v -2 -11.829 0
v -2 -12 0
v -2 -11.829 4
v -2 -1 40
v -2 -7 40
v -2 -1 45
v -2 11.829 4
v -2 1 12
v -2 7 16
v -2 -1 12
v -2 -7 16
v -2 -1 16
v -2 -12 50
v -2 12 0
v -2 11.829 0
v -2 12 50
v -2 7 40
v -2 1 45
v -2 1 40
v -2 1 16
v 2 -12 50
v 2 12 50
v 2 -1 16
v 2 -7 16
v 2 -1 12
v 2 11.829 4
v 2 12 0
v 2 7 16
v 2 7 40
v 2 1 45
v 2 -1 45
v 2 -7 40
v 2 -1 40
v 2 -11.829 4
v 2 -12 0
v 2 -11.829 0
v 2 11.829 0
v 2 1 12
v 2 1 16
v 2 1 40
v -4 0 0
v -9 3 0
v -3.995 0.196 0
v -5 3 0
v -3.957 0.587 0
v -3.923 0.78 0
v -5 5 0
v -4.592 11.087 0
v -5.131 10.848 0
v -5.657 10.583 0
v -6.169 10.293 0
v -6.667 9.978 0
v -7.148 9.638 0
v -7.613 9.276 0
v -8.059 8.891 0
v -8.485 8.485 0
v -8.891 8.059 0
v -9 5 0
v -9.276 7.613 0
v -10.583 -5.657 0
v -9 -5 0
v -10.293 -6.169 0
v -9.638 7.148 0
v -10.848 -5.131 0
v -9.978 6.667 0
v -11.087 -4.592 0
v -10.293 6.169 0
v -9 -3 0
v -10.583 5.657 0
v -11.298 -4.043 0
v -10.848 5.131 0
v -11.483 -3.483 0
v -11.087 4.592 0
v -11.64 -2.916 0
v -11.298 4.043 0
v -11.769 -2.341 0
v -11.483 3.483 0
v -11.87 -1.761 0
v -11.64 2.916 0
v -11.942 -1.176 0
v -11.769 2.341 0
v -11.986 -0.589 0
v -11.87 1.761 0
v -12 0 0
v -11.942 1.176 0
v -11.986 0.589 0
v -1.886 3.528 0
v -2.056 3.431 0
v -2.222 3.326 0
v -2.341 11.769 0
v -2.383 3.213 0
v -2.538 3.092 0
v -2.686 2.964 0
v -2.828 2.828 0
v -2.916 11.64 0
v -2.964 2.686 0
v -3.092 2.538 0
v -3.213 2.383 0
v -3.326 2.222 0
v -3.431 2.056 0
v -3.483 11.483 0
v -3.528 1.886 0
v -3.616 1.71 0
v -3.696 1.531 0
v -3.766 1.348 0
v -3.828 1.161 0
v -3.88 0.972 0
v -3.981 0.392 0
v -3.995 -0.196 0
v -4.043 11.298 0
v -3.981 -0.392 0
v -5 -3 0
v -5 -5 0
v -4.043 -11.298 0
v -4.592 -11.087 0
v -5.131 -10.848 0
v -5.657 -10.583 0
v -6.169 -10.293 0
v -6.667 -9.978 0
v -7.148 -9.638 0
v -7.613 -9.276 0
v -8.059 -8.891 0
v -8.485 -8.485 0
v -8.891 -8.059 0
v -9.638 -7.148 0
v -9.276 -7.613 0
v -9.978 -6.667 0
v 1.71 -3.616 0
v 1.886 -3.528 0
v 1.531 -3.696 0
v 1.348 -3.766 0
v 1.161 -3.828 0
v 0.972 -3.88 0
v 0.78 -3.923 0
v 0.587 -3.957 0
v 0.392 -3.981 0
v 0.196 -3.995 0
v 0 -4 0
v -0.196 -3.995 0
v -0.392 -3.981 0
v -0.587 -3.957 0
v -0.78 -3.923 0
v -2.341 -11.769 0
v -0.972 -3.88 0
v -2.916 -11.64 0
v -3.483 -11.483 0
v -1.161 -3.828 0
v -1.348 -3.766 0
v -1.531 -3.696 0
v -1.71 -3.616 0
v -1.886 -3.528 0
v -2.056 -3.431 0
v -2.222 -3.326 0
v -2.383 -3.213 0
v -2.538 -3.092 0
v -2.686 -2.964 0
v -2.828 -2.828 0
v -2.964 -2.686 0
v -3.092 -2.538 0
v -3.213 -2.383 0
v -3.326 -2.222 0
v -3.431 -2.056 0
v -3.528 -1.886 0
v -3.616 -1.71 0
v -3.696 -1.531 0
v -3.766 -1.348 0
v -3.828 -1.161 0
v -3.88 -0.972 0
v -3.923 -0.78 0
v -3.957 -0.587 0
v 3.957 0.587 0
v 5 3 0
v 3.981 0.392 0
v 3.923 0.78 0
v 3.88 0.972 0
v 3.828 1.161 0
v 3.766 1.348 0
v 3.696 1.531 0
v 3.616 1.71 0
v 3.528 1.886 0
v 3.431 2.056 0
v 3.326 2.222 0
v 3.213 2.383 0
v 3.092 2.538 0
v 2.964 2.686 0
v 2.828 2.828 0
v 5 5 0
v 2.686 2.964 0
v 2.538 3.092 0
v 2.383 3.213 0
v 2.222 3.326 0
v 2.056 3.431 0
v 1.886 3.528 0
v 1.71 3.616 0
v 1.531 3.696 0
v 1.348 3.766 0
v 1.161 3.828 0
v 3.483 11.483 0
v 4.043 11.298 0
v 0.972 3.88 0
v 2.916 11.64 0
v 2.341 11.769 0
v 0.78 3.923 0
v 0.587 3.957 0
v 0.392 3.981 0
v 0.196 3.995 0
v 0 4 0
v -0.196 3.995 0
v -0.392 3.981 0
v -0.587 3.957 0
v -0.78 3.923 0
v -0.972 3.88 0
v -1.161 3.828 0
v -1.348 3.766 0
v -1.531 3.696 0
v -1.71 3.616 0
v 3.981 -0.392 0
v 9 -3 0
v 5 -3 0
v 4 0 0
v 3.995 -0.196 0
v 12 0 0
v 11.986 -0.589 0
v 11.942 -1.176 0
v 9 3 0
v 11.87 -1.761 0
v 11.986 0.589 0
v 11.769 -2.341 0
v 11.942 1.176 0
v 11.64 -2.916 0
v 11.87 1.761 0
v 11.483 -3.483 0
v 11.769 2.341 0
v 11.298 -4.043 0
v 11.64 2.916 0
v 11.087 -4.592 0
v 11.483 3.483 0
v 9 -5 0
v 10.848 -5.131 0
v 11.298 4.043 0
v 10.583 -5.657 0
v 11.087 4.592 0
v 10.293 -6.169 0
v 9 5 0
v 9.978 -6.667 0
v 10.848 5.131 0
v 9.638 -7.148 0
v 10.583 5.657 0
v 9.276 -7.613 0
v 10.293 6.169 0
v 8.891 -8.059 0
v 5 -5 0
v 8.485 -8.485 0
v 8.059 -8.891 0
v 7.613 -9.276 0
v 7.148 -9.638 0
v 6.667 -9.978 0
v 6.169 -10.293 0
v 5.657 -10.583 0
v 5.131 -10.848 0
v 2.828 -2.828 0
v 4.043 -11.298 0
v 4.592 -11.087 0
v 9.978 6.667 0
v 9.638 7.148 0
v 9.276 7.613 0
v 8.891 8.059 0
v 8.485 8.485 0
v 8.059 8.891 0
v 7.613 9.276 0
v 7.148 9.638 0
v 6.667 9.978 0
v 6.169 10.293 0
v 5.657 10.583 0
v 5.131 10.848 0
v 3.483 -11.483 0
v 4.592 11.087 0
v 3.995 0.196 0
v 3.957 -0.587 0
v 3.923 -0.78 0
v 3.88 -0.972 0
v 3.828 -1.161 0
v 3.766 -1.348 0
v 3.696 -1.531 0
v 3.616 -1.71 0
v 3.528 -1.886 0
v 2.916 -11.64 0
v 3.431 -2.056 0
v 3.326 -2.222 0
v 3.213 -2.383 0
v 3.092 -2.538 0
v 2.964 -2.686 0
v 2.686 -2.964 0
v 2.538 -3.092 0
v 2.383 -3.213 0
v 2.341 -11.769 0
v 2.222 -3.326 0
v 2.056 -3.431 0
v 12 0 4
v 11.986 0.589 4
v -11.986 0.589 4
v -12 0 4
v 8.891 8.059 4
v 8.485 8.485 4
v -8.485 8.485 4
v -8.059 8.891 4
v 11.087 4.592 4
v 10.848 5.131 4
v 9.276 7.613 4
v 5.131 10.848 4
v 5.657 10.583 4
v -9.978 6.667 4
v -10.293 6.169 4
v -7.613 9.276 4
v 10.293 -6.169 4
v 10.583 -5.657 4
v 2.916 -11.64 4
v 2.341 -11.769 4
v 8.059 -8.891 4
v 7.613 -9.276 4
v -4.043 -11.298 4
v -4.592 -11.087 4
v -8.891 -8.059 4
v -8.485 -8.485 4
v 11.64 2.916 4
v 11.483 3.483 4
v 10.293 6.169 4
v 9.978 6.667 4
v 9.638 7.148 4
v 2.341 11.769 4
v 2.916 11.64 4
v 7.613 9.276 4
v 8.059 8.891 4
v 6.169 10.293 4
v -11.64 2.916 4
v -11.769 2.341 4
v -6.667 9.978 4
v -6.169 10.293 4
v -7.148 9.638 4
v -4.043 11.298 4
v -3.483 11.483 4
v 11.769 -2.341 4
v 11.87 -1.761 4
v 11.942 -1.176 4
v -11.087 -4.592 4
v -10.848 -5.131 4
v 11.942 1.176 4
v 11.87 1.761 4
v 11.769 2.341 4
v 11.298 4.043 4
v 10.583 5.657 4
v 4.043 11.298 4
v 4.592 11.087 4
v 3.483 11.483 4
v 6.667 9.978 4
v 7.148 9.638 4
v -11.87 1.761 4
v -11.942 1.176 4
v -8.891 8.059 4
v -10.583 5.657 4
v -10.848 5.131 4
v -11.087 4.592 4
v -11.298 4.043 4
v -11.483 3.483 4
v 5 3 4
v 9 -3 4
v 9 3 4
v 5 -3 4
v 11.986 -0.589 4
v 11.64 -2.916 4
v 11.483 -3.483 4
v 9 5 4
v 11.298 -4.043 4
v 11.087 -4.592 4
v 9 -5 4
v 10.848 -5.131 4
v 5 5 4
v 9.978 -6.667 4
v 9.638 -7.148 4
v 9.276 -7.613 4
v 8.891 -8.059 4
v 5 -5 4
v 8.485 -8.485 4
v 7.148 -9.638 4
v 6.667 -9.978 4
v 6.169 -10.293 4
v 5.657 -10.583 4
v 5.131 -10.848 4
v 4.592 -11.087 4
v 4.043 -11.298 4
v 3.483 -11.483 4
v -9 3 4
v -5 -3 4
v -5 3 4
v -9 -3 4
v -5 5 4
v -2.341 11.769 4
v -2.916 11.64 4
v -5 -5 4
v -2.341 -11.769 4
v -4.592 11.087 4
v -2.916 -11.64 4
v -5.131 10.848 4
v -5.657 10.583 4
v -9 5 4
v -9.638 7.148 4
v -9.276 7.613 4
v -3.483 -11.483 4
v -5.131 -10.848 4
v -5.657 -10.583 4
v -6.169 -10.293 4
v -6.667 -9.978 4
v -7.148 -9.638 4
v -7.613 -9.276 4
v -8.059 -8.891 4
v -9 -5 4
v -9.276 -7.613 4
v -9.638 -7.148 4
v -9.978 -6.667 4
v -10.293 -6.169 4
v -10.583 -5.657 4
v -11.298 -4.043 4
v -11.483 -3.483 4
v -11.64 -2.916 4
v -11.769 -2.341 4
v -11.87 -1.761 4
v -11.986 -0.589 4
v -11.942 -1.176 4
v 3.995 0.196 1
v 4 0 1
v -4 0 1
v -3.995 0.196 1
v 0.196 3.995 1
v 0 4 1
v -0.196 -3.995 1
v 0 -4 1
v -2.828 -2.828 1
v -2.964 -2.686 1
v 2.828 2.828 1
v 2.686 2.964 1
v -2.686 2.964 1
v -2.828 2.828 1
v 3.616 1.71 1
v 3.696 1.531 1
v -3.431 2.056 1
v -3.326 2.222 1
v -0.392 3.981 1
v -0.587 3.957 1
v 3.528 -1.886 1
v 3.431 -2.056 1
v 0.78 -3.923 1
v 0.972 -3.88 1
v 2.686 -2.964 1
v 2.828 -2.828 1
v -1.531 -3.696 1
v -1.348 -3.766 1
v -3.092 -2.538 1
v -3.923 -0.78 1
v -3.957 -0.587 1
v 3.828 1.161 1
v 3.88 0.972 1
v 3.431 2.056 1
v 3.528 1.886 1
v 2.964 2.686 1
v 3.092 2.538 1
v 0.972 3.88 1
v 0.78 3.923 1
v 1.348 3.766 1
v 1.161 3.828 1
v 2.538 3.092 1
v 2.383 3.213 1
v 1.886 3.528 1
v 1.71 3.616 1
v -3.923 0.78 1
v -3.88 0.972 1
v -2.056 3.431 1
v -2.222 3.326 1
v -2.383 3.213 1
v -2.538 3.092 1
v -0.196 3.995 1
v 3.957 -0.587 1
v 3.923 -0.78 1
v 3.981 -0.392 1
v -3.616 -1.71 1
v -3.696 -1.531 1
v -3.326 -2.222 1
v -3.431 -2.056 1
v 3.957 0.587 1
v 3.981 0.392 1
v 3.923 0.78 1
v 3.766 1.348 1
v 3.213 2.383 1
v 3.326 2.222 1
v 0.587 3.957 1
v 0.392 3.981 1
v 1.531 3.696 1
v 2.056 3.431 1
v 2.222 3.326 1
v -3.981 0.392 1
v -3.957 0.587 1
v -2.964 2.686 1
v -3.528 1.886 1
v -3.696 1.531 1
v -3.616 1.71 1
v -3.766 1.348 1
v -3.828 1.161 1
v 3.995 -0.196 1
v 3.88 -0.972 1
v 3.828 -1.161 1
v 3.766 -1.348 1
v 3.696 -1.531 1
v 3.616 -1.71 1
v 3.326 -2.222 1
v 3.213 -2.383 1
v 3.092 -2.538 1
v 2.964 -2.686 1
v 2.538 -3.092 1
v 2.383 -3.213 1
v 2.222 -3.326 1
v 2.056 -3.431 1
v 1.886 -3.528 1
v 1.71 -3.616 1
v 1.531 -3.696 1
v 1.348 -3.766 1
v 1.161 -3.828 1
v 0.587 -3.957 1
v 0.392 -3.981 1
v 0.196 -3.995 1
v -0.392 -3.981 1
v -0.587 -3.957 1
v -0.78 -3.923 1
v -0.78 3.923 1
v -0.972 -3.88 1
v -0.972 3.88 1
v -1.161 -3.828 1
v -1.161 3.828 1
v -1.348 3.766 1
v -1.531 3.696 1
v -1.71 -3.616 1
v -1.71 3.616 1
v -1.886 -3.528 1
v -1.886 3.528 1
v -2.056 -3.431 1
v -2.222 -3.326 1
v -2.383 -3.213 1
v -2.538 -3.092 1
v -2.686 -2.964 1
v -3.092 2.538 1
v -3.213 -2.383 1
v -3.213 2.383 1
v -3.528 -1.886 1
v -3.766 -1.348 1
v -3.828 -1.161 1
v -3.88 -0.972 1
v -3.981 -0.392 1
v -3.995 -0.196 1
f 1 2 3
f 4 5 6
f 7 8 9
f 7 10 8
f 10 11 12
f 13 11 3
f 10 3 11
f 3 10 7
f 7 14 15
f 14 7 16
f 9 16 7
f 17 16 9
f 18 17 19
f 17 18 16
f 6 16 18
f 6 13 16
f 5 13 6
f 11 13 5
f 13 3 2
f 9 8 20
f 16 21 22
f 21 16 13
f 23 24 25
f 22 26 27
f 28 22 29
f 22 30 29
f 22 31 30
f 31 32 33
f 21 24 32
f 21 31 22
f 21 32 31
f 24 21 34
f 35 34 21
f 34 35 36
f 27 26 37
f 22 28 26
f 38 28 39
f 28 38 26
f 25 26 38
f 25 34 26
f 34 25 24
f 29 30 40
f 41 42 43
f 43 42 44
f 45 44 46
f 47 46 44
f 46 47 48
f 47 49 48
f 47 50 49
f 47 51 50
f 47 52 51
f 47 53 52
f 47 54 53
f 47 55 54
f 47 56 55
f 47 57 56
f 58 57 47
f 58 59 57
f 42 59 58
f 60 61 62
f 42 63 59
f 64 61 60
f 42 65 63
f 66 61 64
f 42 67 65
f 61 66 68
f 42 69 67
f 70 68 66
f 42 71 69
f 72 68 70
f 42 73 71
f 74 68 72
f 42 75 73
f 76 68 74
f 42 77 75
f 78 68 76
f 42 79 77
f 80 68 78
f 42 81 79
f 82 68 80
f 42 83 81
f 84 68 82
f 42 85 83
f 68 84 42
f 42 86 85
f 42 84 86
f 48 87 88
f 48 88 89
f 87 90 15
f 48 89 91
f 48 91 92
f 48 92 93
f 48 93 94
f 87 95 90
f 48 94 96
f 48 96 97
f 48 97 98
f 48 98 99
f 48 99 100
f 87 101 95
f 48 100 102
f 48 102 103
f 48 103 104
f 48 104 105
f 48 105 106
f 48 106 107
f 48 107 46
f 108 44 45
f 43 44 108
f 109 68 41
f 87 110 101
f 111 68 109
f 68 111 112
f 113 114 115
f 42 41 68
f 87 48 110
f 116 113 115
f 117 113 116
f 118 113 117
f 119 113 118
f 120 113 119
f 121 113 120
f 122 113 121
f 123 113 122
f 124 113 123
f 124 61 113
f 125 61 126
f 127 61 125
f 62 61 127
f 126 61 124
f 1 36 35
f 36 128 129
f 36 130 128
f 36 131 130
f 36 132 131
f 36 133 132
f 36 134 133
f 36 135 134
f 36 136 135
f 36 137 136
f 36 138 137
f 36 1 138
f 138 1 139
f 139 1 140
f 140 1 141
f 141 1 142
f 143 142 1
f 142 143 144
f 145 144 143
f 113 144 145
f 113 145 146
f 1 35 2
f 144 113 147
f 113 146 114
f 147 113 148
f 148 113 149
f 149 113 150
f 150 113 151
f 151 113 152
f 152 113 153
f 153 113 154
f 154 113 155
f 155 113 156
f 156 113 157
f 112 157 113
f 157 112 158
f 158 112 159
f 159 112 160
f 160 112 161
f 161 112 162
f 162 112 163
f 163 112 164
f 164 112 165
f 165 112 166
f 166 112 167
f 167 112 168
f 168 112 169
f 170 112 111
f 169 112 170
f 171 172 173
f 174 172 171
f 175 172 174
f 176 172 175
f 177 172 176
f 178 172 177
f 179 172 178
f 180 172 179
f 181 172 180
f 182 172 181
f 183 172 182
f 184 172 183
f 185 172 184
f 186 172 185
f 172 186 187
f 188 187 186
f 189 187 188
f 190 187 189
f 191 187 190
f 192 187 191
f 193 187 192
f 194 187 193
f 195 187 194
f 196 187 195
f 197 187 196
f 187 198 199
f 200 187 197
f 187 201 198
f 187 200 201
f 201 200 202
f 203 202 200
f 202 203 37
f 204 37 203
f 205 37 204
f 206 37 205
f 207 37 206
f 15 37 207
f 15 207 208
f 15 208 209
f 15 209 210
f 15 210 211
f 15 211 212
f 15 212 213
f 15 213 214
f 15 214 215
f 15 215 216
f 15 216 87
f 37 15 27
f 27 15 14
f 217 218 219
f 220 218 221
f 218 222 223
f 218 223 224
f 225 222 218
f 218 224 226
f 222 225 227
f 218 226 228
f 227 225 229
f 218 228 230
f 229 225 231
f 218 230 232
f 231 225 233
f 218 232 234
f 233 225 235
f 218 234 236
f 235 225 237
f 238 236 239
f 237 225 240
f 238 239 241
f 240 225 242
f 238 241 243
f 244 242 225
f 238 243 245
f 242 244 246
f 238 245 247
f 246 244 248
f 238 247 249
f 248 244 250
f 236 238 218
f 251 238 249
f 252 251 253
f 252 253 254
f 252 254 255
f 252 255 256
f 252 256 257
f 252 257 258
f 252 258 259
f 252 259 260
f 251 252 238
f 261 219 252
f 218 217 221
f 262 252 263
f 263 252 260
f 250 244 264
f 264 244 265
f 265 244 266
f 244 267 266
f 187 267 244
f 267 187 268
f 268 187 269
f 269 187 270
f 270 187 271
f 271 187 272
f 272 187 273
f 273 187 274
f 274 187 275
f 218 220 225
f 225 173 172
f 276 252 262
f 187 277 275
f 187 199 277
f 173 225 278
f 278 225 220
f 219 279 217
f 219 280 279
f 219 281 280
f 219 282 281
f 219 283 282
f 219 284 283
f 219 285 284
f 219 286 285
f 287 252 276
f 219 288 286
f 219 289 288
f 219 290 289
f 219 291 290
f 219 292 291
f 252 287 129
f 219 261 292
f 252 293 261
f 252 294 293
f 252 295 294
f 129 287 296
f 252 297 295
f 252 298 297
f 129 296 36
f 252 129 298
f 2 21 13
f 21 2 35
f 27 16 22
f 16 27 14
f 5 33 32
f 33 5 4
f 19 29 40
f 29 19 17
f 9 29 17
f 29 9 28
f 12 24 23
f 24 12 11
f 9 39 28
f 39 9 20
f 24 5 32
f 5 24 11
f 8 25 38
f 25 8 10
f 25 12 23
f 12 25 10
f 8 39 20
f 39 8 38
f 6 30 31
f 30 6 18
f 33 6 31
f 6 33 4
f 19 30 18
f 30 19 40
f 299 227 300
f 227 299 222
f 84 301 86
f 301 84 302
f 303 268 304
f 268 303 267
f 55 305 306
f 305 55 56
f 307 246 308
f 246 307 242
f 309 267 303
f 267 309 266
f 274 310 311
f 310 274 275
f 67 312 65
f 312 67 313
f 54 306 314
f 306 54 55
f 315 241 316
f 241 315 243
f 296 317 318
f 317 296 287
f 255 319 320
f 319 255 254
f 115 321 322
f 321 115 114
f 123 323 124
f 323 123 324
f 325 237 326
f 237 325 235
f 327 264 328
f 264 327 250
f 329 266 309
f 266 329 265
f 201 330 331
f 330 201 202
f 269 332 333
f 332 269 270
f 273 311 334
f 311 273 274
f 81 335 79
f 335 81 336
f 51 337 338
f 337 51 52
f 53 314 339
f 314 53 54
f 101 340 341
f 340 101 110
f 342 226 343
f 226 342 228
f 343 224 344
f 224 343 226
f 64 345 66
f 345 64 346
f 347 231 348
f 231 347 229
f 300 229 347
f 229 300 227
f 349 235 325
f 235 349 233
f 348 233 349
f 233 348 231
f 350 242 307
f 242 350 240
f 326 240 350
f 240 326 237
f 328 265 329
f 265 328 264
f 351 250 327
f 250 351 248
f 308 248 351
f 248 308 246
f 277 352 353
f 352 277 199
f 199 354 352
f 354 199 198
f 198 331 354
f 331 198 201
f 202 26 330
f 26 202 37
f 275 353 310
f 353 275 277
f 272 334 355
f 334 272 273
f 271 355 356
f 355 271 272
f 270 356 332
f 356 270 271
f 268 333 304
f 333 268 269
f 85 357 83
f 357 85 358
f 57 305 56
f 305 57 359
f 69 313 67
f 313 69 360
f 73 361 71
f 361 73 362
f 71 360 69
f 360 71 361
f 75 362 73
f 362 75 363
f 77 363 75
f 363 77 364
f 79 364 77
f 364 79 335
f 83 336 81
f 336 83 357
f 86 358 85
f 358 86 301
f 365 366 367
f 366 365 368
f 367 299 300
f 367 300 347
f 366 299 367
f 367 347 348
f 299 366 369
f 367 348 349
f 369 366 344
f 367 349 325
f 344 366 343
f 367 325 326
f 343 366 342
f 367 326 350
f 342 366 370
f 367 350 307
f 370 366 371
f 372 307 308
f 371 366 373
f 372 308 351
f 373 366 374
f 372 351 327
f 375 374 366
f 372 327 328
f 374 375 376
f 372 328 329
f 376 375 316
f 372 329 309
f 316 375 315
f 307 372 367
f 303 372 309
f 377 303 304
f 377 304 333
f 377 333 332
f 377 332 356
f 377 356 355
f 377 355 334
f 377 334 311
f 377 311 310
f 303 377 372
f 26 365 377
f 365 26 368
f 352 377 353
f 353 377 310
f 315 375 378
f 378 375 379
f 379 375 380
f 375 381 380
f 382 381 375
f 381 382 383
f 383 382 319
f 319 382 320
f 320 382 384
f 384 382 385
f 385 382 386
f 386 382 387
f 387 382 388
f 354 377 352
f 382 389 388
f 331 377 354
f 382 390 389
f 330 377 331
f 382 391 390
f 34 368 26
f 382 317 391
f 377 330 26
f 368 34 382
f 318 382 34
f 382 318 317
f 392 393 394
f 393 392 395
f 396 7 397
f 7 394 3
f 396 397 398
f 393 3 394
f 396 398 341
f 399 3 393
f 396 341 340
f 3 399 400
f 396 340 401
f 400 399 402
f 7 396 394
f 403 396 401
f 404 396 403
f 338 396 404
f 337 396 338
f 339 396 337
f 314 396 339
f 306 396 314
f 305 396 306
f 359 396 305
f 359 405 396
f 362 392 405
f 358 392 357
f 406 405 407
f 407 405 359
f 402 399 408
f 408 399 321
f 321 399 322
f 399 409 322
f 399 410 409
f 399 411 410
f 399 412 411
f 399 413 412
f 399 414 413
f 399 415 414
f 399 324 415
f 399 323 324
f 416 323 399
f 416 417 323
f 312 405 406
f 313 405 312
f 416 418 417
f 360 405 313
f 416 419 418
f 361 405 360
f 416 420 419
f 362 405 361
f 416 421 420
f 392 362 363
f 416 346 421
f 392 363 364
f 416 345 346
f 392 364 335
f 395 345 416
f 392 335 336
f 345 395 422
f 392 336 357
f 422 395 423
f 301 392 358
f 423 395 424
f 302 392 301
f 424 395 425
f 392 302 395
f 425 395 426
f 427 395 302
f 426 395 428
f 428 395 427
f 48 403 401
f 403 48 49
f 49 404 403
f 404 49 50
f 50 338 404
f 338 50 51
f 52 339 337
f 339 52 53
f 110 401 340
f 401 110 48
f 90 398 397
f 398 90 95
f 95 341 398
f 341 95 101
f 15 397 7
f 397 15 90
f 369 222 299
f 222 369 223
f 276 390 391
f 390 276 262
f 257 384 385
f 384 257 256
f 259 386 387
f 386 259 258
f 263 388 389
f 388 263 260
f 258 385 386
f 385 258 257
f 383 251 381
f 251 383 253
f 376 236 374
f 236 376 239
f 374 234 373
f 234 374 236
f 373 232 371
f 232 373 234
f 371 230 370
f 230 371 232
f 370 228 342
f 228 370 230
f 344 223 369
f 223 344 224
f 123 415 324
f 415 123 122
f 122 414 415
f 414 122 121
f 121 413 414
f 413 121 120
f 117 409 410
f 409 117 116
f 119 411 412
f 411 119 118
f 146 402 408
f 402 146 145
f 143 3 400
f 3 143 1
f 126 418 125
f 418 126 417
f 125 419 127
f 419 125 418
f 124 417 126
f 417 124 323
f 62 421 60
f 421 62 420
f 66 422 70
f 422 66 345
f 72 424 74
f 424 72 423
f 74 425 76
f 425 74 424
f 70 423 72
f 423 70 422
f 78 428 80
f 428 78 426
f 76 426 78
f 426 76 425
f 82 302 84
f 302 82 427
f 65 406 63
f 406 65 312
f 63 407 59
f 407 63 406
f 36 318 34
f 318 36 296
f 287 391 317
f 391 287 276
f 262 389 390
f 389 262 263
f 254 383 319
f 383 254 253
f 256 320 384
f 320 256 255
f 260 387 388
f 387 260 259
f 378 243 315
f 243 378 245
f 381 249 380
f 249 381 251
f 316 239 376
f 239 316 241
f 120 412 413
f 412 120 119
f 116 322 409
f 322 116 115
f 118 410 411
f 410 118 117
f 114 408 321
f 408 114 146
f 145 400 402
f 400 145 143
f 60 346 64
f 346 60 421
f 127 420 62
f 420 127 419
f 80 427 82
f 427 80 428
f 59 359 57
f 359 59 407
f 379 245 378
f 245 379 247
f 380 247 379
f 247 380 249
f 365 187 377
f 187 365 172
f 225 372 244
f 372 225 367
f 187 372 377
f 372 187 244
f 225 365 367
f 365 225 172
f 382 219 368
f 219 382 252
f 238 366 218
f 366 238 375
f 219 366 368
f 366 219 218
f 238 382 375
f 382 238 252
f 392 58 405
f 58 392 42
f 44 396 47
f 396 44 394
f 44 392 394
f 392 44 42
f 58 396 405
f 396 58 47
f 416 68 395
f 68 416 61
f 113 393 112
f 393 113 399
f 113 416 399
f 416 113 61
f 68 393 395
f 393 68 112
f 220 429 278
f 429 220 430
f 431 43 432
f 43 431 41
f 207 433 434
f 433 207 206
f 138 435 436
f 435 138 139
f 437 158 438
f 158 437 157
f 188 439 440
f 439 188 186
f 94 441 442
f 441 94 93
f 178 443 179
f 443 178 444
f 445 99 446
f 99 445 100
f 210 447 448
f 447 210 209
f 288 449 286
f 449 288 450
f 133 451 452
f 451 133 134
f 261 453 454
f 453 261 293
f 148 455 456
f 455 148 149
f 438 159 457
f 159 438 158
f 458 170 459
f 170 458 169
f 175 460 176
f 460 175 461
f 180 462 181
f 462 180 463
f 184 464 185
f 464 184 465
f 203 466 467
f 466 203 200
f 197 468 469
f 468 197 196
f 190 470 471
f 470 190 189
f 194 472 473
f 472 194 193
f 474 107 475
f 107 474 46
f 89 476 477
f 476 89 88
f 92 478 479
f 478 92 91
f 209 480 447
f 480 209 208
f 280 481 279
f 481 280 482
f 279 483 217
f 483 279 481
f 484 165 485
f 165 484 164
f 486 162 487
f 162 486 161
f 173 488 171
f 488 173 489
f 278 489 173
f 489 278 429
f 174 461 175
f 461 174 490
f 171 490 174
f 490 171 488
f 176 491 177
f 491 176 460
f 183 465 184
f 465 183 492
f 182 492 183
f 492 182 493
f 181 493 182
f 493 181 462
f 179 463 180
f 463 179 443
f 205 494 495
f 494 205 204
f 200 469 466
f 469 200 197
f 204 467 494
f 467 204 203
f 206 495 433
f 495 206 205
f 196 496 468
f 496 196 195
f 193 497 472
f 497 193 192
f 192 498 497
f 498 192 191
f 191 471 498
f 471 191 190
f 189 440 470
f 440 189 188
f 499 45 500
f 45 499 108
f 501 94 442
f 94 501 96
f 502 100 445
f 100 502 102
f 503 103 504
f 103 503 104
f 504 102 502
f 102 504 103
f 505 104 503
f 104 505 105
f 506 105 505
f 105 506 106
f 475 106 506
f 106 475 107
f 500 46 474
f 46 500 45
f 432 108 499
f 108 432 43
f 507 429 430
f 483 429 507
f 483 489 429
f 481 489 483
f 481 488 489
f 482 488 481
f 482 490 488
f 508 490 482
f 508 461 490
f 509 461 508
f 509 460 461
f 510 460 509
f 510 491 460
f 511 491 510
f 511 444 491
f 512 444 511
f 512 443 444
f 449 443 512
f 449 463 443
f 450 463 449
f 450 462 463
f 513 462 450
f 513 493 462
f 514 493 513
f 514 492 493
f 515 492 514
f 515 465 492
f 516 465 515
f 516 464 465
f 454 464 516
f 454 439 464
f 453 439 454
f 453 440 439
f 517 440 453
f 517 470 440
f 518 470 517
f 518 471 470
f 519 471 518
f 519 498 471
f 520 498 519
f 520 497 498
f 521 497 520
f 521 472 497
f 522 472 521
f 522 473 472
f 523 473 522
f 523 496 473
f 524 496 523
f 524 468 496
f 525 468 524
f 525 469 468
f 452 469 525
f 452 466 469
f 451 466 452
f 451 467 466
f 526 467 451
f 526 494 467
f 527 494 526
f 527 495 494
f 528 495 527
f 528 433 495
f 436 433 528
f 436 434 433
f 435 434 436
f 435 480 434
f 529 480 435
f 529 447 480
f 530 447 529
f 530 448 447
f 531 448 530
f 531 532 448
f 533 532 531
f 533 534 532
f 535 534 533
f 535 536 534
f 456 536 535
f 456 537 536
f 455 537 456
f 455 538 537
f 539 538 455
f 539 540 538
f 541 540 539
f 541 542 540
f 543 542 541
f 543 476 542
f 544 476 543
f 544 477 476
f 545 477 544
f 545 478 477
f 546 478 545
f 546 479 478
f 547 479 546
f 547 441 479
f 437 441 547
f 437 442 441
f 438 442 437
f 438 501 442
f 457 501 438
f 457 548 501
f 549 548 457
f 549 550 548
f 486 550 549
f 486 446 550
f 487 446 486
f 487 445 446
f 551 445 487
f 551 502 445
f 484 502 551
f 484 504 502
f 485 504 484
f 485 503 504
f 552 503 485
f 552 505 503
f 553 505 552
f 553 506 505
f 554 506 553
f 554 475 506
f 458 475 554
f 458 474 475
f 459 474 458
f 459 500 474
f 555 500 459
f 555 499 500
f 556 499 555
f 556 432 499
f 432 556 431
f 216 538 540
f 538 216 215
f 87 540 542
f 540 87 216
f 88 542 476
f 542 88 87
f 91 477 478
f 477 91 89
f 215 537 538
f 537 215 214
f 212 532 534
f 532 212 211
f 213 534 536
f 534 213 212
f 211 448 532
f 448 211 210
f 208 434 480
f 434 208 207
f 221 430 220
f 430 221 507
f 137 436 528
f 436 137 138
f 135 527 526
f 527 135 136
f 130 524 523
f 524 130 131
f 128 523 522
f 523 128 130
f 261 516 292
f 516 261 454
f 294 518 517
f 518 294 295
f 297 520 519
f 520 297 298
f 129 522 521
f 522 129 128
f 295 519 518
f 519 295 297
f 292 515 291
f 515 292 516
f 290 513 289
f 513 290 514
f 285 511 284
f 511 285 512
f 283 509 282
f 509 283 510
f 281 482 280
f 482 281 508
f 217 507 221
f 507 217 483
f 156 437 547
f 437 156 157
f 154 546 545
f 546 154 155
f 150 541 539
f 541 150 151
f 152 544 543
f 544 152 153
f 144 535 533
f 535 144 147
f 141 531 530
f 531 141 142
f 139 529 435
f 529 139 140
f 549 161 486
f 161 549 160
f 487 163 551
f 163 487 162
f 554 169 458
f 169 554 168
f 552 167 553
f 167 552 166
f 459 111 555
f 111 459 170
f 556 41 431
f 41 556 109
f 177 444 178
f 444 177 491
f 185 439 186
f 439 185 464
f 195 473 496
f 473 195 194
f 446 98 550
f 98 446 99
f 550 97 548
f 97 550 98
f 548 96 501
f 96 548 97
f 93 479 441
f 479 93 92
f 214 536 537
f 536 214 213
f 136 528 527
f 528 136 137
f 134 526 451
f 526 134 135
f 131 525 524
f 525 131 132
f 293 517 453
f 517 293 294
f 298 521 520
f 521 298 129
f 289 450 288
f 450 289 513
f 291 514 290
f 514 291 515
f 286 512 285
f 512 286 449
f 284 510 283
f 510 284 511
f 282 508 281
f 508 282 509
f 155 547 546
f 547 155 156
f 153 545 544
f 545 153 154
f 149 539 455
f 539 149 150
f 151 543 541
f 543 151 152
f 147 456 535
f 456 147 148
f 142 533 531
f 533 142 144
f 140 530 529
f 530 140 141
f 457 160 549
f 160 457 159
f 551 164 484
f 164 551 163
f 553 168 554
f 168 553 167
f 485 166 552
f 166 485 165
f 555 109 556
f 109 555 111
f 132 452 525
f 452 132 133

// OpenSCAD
$fn = 128;

/*cylinder*/
cy_di = 24; /*diameter*/
cy_thck = 4; /*thickness*/

/*rectangle*/
rec_h = 50;
rec_w = cy_di;
rec_thck = 4;  /*thickness*/

/*servo hole*/
hole_w = 14;
hole_h = 24;

difference()
{
    union()
    {
        difference()
        {
            cylinder(h=cy_thck, r1=cy_di/2, r2=cy_di/2, center=false);
        }

        difference()
        {
            translate([-rec_thck/2,-rec_w/2,0])
                cube(size=[rec_thck, rec_w, rec_h], center=false);

            translate([-rec_thck/2,-rec_w/2,0])
                translate([-1,5,rec_h-hole_h-10])
                    cube(size=[rec_thck+2, hole_w, hole_h], center=false);

            translate([-rec_thck/2,-rec_w/2,0])
                translate([-1,5,rec_h-hole_h-10])
                    translate([-2,hole_w/2 -1,-4])
                        cube(size=[rec_thck+4, 2, 6], center=false);

            translate([-rec_thck/2,-rec_w/2,0])
                translate([-1,5,rec_h-hole_h-10])
                    translate([-2,hole_w/2 -1,hole_h-1])
                        cube(size=[rec_thck+4, 2, 6], center=false);
        }
    }

    /*Clamp holes*/
    translate([5,3,-10])
        cube(size=[4,2,20]);

    translate([5,-3-2,-10])
        cube(size=[4,2,20]);

    translate([-9,3,-10])
        cube(size=[4,2,20]);

    translate([-9,-3-2,-10])
        cube(size=[4,2,20]);

    /*Horn hole*/
    translate([0,0,-2])
        cylinder(h=3, r1=4,r2=4,center=false);
}

/*
translate([0,0,-10])
    rotate(a=90,v=[0,1,0])
            rotate(a=90,v=[0,0,1])
                import(file = "horn.stl");
*/
